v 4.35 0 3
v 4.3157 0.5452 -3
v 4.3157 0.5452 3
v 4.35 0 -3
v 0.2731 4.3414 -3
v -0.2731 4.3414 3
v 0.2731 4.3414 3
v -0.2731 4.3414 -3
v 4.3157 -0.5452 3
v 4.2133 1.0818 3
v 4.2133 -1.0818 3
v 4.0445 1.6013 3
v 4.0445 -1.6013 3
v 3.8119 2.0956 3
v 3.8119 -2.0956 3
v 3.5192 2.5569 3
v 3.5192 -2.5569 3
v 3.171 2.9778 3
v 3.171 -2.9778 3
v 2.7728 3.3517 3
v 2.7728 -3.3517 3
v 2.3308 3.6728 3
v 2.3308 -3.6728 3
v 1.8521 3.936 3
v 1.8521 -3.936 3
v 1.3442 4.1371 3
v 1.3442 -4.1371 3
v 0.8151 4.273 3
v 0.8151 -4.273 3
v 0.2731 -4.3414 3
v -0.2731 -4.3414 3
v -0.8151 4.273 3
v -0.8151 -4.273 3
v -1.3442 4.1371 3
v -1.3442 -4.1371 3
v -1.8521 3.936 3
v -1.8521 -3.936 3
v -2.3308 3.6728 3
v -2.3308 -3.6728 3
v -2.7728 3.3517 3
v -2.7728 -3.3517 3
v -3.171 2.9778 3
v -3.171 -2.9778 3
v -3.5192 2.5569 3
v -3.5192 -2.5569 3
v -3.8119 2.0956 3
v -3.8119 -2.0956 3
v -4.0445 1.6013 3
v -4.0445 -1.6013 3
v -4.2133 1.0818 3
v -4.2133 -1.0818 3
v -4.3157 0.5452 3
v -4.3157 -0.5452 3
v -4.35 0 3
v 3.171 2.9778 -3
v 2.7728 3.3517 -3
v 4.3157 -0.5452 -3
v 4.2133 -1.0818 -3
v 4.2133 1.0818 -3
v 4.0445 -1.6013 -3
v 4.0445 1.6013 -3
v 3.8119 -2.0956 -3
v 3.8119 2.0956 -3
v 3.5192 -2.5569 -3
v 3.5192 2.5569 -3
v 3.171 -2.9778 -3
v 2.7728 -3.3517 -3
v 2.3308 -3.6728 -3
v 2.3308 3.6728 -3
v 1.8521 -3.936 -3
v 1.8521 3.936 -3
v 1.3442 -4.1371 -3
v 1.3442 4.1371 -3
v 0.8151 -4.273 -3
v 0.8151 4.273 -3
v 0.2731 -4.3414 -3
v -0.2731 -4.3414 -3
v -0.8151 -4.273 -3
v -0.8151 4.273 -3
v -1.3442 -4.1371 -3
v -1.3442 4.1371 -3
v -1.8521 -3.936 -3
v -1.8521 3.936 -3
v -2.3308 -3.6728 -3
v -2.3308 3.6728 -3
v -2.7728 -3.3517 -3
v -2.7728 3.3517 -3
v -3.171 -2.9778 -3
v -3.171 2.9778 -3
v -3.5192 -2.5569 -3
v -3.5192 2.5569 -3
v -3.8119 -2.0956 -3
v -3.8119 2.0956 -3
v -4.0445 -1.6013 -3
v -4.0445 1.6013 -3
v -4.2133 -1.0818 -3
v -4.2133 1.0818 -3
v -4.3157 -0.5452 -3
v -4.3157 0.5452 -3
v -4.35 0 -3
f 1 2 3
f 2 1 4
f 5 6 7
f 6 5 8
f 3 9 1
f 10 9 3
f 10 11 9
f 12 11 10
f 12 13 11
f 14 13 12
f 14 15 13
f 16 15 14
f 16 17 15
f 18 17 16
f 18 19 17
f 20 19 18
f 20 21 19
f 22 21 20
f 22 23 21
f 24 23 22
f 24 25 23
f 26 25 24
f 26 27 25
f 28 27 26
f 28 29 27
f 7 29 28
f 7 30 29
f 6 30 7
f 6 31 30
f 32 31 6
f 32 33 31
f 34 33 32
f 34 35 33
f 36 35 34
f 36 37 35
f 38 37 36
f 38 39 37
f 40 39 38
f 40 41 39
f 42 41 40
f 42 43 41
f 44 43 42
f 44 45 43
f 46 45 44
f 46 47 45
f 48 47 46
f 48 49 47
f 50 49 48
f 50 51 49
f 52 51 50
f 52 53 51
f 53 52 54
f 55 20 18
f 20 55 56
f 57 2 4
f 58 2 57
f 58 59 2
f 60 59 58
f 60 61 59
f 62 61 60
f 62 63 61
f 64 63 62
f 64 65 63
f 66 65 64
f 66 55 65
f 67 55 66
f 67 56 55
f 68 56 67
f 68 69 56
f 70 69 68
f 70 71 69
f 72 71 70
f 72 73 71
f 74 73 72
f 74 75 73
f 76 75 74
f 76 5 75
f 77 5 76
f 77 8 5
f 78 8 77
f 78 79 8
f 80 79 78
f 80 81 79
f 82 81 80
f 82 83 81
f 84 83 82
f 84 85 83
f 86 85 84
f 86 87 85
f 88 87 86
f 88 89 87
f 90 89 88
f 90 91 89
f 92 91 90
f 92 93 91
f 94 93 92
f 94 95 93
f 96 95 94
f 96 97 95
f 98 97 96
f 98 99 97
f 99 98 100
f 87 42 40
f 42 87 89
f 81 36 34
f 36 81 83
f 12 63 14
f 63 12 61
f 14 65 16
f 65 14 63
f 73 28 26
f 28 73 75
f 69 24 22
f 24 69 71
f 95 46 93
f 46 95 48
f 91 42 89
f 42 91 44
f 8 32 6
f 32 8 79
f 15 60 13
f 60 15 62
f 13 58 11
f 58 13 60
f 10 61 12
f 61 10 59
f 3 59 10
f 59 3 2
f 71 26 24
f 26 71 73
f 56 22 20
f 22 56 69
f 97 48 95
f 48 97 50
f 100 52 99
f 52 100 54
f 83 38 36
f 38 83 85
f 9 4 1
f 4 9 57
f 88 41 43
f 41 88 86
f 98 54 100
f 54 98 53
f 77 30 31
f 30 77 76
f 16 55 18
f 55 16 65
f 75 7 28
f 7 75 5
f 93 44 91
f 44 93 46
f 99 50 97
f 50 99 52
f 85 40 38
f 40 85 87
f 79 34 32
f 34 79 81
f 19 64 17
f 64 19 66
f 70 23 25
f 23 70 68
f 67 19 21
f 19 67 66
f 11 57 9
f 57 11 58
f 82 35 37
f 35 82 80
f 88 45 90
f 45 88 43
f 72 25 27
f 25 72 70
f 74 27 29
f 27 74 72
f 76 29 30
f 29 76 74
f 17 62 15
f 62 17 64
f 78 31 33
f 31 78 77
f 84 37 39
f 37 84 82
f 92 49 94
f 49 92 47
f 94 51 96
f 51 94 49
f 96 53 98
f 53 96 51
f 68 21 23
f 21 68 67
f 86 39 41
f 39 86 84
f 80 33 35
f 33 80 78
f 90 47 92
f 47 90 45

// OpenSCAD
$fn = 50;


difference() {
	union() {
		translate(v = [0, 0, -3.0000000000]) {
			cylinder(h = 6, r = 4.3500000000);
		}
	}
	union() {
		translate(v = [0, 0, -100.0000000000]) {
			cylinder(h = 200, r = 0);
		}
	}
}
